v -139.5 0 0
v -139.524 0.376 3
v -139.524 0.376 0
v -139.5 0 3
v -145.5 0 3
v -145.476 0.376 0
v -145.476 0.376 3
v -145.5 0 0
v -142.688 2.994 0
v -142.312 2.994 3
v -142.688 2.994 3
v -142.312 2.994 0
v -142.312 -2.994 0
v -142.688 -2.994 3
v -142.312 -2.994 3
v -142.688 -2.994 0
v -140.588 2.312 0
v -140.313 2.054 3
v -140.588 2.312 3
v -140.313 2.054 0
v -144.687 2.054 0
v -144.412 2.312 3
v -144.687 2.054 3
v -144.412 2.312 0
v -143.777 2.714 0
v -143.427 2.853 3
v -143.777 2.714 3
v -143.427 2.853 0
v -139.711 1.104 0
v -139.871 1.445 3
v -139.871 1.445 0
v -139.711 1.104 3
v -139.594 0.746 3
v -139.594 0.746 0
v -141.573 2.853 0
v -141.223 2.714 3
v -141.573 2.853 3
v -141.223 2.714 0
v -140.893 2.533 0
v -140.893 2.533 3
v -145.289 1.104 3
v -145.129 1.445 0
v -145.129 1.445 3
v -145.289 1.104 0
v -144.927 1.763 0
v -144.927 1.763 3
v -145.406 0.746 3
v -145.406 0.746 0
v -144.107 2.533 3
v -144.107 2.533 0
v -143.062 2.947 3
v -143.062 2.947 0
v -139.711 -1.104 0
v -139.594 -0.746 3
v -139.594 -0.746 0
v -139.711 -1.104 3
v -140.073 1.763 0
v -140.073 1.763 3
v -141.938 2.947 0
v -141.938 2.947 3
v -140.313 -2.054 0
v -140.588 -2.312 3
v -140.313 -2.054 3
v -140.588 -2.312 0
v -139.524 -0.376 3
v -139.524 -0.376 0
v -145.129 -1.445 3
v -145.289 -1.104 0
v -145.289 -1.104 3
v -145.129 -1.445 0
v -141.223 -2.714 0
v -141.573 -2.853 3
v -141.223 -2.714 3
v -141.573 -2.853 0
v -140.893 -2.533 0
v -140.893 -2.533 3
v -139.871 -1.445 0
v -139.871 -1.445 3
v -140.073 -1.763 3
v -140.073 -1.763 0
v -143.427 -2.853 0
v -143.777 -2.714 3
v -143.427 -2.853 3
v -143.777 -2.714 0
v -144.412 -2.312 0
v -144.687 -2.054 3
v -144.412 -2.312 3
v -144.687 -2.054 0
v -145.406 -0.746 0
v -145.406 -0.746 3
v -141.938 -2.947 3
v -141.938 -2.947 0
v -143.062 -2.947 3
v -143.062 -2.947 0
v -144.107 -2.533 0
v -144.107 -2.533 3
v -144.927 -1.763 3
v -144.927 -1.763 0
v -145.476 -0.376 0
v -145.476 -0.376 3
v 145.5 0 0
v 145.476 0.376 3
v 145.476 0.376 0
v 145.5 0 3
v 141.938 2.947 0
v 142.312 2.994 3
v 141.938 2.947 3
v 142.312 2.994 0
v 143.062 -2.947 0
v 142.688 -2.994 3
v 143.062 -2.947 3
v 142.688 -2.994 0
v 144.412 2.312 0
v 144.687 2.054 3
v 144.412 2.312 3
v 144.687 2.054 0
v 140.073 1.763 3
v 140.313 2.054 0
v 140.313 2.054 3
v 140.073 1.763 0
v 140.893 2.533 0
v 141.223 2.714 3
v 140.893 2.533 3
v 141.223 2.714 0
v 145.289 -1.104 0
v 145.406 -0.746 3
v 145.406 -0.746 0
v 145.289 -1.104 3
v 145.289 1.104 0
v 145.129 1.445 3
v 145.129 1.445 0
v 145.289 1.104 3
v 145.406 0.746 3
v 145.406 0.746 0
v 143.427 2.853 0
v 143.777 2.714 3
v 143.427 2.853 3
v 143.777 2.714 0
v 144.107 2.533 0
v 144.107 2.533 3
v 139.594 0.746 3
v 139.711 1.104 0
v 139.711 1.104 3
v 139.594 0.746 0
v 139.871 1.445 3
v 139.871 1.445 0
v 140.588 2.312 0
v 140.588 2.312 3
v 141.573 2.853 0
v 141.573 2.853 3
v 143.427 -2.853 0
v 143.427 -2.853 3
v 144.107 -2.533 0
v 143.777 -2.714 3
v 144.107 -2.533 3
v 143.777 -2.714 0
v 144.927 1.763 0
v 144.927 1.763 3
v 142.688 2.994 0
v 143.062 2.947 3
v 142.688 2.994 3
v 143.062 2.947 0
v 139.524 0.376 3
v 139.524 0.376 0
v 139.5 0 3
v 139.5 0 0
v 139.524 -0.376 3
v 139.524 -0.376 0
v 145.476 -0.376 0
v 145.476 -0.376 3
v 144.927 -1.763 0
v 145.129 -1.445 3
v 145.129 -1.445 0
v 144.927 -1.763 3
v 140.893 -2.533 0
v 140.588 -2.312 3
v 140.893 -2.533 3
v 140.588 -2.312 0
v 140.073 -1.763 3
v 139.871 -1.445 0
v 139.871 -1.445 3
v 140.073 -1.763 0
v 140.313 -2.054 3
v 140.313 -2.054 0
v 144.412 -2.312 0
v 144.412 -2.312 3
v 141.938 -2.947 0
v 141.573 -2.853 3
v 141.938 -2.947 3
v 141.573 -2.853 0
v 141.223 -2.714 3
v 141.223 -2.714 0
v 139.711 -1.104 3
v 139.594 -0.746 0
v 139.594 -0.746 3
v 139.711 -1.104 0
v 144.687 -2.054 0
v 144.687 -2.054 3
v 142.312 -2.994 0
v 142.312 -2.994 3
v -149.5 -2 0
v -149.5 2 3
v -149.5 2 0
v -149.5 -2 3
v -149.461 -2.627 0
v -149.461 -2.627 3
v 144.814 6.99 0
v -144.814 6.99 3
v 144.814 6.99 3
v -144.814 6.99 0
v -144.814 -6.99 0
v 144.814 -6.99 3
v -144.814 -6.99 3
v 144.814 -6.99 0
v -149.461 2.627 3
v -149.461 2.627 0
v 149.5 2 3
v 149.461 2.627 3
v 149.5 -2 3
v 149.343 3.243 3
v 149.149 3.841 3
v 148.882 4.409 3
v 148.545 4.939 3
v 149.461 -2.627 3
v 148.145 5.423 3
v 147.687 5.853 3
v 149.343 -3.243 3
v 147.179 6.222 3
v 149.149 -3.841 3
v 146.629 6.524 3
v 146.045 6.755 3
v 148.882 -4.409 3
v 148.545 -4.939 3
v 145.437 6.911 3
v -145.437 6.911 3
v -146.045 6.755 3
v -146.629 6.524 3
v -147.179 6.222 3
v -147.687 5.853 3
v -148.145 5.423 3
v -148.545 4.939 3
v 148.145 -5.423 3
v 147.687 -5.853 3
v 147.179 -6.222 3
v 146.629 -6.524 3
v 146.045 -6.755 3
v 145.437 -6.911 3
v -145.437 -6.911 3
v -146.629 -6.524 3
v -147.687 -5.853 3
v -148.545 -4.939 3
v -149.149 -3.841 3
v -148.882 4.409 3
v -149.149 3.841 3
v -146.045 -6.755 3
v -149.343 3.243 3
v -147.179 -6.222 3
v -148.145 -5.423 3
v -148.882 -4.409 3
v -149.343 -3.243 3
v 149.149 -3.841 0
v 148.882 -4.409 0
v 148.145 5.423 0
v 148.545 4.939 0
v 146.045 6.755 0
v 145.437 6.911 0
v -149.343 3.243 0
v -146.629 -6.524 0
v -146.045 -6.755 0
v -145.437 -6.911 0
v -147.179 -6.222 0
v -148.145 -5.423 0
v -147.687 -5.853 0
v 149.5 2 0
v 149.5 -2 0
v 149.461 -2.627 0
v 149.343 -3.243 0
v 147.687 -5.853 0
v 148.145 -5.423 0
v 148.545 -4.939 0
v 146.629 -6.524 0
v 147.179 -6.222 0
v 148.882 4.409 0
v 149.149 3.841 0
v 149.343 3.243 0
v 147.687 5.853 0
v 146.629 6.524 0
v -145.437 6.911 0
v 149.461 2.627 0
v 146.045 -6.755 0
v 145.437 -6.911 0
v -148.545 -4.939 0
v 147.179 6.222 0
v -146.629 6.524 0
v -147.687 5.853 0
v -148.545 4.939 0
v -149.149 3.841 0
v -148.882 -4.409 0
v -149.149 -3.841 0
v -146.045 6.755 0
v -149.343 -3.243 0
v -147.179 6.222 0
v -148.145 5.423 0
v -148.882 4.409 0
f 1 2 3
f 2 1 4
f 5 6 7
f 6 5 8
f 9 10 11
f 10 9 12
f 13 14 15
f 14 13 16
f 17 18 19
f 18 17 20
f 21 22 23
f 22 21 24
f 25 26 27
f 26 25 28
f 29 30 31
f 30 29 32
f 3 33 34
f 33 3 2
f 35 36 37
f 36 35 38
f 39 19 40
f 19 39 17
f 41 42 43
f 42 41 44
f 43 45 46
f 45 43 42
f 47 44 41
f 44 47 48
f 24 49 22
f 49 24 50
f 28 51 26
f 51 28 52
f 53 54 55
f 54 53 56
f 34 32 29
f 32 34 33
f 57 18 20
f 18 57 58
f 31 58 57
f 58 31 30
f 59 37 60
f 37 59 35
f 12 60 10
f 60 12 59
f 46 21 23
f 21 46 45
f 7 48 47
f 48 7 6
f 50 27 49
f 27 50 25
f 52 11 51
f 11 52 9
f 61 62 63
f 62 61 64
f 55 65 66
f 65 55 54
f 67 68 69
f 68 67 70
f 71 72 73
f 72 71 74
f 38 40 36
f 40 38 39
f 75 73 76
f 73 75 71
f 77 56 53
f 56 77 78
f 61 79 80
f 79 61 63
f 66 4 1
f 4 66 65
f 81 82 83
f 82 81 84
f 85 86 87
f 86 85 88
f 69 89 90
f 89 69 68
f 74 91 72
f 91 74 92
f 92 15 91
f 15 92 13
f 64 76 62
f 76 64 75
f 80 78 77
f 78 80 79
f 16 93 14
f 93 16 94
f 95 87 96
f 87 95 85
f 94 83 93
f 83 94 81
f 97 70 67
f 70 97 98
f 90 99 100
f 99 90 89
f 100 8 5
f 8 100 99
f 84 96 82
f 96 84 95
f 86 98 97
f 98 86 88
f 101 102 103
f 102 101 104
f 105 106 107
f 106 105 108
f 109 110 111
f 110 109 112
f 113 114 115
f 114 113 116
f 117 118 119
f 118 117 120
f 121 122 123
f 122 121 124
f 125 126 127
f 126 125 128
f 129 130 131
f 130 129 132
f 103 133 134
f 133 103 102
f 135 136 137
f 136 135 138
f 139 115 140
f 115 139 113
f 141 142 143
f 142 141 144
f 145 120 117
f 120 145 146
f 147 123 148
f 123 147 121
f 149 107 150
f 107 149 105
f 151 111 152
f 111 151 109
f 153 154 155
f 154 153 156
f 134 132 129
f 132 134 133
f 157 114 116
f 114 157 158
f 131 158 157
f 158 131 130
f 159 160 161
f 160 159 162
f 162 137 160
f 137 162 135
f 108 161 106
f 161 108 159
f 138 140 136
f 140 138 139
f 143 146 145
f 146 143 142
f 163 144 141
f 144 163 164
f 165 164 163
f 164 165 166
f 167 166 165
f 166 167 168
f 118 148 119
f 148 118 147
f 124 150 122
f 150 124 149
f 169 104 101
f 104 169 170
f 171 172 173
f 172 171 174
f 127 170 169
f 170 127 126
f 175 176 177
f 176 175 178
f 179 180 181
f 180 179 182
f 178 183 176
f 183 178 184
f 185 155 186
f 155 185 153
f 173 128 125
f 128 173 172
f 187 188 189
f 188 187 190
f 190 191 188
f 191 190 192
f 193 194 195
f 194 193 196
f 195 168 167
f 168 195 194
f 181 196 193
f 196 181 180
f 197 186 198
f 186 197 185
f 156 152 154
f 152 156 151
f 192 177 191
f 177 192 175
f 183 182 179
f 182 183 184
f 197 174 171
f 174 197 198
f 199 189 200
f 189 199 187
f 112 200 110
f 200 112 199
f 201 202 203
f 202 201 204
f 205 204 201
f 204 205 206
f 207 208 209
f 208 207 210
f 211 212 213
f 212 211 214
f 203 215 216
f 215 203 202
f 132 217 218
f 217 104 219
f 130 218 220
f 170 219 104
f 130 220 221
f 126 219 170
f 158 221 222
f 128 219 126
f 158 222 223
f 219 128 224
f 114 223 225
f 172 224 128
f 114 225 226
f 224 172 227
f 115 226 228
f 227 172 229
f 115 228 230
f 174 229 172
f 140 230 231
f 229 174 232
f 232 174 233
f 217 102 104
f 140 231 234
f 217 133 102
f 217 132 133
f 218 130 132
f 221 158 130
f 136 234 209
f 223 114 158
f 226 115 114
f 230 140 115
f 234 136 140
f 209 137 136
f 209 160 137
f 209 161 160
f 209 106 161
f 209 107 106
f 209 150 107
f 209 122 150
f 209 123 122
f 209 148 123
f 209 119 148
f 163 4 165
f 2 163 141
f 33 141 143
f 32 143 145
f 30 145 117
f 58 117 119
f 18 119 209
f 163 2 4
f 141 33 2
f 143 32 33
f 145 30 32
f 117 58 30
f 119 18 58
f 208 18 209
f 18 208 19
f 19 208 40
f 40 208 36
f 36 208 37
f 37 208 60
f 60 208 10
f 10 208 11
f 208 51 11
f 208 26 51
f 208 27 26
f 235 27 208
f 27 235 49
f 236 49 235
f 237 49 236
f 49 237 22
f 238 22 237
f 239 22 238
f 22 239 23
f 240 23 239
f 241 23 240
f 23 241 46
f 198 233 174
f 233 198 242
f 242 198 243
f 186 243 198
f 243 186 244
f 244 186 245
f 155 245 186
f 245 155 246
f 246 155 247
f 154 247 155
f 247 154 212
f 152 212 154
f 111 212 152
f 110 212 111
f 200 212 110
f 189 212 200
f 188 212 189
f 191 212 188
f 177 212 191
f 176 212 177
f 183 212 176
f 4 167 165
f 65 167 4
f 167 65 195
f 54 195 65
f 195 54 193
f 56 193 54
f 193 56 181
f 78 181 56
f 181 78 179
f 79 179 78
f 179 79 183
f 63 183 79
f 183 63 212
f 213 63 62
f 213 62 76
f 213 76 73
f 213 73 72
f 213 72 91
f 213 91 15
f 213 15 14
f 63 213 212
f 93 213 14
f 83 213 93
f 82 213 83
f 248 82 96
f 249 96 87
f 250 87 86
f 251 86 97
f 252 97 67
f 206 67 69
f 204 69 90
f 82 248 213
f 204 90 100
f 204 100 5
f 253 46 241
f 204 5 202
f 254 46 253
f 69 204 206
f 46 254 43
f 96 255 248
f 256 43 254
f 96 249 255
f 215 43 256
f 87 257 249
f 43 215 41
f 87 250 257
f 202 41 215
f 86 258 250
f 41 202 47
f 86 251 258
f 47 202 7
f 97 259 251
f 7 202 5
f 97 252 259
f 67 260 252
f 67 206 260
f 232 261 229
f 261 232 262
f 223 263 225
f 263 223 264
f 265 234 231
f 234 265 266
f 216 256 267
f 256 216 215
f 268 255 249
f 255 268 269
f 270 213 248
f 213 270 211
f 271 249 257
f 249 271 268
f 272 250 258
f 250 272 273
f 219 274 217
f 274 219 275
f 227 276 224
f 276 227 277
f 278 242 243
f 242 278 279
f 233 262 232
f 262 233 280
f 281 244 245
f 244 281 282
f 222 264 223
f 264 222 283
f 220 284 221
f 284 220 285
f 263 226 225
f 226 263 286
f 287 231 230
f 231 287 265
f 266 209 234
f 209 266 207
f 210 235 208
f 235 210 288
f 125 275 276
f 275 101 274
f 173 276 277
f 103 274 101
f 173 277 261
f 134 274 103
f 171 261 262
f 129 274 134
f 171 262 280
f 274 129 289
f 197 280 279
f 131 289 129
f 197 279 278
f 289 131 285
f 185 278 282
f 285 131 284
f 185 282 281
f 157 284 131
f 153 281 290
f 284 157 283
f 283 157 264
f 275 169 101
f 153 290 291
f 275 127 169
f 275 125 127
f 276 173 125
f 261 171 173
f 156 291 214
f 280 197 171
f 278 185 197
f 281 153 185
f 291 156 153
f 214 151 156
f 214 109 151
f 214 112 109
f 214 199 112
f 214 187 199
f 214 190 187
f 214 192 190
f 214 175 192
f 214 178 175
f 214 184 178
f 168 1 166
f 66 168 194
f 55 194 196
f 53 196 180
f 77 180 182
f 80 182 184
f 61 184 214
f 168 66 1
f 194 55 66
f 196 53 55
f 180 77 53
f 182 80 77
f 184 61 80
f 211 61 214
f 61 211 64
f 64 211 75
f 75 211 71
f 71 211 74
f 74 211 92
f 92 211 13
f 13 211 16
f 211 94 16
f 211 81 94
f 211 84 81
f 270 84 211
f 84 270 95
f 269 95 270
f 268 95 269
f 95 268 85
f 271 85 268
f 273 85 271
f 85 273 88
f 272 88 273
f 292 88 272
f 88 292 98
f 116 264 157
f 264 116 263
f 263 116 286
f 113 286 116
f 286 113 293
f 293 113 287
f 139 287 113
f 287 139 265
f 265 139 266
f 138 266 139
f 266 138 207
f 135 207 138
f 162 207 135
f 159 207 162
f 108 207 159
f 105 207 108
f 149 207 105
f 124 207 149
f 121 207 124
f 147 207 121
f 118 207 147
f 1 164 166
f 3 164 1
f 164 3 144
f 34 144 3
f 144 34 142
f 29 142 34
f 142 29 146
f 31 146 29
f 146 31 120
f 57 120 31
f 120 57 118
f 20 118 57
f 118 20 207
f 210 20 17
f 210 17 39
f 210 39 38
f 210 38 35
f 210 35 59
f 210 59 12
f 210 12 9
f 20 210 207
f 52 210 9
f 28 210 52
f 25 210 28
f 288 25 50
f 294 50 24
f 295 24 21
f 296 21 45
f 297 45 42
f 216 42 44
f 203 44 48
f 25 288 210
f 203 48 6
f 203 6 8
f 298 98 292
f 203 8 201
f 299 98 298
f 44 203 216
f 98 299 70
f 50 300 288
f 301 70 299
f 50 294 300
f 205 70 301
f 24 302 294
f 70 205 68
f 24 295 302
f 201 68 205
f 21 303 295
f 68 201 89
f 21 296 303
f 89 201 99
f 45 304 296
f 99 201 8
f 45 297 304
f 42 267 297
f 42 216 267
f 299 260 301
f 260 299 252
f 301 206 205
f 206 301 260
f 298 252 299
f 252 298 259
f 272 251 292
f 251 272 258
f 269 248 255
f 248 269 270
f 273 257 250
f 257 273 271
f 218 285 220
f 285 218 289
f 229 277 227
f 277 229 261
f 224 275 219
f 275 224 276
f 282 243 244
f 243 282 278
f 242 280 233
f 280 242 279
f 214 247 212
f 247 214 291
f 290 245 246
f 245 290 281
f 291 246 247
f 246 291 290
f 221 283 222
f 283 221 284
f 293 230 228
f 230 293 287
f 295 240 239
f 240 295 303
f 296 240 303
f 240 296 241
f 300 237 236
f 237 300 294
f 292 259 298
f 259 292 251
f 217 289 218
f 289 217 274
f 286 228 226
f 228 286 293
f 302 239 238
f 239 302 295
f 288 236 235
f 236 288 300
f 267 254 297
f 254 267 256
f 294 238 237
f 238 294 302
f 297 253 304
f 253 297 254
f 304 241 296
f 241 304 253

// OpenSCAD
$fn = 50;


difference() {
	union() {
		hull() {
			translate(v = [-144.5000000000, 2.0000000000, 0]) {
				cylinder(h = 3, r = 5);
			}
			translate(v = [144.5000000000, 2.0000000000, 0]) {
				cylinder(h = 3, r = 5);
			}
			translate(v = [-144.5000000000, -2.0000000000, 0]) {
				cylinder(h = 3, r = 5);
			}
			translate(v = [144.5000000000, -2.0000000000, 0]) {
				cylinder(h = 3, r = 5);
			}
		}
	}
	union() {
		translate(v = [-142.5000000000, 0.0000000000, -100.0000000000]) {
			cylinder(h = 200, r = 3.0000000000);
		}
		translate(v = [-142.5000000000, 0.0000000000, -100.0000000000]) {
			cylinder(h = 200, r = 3.0000000000);
		}
		translate(v = [142.5000000000, 0.0000000000, -100.0000000000]) {
			cylinder(h = 200, r = 3.0000000000);
		}
		translate(v = [142.5000000000, 0.0000000000, -100.0000000000]) {
			cylinder(h = 200, r = 3.0000000000);
		}
	}
}
